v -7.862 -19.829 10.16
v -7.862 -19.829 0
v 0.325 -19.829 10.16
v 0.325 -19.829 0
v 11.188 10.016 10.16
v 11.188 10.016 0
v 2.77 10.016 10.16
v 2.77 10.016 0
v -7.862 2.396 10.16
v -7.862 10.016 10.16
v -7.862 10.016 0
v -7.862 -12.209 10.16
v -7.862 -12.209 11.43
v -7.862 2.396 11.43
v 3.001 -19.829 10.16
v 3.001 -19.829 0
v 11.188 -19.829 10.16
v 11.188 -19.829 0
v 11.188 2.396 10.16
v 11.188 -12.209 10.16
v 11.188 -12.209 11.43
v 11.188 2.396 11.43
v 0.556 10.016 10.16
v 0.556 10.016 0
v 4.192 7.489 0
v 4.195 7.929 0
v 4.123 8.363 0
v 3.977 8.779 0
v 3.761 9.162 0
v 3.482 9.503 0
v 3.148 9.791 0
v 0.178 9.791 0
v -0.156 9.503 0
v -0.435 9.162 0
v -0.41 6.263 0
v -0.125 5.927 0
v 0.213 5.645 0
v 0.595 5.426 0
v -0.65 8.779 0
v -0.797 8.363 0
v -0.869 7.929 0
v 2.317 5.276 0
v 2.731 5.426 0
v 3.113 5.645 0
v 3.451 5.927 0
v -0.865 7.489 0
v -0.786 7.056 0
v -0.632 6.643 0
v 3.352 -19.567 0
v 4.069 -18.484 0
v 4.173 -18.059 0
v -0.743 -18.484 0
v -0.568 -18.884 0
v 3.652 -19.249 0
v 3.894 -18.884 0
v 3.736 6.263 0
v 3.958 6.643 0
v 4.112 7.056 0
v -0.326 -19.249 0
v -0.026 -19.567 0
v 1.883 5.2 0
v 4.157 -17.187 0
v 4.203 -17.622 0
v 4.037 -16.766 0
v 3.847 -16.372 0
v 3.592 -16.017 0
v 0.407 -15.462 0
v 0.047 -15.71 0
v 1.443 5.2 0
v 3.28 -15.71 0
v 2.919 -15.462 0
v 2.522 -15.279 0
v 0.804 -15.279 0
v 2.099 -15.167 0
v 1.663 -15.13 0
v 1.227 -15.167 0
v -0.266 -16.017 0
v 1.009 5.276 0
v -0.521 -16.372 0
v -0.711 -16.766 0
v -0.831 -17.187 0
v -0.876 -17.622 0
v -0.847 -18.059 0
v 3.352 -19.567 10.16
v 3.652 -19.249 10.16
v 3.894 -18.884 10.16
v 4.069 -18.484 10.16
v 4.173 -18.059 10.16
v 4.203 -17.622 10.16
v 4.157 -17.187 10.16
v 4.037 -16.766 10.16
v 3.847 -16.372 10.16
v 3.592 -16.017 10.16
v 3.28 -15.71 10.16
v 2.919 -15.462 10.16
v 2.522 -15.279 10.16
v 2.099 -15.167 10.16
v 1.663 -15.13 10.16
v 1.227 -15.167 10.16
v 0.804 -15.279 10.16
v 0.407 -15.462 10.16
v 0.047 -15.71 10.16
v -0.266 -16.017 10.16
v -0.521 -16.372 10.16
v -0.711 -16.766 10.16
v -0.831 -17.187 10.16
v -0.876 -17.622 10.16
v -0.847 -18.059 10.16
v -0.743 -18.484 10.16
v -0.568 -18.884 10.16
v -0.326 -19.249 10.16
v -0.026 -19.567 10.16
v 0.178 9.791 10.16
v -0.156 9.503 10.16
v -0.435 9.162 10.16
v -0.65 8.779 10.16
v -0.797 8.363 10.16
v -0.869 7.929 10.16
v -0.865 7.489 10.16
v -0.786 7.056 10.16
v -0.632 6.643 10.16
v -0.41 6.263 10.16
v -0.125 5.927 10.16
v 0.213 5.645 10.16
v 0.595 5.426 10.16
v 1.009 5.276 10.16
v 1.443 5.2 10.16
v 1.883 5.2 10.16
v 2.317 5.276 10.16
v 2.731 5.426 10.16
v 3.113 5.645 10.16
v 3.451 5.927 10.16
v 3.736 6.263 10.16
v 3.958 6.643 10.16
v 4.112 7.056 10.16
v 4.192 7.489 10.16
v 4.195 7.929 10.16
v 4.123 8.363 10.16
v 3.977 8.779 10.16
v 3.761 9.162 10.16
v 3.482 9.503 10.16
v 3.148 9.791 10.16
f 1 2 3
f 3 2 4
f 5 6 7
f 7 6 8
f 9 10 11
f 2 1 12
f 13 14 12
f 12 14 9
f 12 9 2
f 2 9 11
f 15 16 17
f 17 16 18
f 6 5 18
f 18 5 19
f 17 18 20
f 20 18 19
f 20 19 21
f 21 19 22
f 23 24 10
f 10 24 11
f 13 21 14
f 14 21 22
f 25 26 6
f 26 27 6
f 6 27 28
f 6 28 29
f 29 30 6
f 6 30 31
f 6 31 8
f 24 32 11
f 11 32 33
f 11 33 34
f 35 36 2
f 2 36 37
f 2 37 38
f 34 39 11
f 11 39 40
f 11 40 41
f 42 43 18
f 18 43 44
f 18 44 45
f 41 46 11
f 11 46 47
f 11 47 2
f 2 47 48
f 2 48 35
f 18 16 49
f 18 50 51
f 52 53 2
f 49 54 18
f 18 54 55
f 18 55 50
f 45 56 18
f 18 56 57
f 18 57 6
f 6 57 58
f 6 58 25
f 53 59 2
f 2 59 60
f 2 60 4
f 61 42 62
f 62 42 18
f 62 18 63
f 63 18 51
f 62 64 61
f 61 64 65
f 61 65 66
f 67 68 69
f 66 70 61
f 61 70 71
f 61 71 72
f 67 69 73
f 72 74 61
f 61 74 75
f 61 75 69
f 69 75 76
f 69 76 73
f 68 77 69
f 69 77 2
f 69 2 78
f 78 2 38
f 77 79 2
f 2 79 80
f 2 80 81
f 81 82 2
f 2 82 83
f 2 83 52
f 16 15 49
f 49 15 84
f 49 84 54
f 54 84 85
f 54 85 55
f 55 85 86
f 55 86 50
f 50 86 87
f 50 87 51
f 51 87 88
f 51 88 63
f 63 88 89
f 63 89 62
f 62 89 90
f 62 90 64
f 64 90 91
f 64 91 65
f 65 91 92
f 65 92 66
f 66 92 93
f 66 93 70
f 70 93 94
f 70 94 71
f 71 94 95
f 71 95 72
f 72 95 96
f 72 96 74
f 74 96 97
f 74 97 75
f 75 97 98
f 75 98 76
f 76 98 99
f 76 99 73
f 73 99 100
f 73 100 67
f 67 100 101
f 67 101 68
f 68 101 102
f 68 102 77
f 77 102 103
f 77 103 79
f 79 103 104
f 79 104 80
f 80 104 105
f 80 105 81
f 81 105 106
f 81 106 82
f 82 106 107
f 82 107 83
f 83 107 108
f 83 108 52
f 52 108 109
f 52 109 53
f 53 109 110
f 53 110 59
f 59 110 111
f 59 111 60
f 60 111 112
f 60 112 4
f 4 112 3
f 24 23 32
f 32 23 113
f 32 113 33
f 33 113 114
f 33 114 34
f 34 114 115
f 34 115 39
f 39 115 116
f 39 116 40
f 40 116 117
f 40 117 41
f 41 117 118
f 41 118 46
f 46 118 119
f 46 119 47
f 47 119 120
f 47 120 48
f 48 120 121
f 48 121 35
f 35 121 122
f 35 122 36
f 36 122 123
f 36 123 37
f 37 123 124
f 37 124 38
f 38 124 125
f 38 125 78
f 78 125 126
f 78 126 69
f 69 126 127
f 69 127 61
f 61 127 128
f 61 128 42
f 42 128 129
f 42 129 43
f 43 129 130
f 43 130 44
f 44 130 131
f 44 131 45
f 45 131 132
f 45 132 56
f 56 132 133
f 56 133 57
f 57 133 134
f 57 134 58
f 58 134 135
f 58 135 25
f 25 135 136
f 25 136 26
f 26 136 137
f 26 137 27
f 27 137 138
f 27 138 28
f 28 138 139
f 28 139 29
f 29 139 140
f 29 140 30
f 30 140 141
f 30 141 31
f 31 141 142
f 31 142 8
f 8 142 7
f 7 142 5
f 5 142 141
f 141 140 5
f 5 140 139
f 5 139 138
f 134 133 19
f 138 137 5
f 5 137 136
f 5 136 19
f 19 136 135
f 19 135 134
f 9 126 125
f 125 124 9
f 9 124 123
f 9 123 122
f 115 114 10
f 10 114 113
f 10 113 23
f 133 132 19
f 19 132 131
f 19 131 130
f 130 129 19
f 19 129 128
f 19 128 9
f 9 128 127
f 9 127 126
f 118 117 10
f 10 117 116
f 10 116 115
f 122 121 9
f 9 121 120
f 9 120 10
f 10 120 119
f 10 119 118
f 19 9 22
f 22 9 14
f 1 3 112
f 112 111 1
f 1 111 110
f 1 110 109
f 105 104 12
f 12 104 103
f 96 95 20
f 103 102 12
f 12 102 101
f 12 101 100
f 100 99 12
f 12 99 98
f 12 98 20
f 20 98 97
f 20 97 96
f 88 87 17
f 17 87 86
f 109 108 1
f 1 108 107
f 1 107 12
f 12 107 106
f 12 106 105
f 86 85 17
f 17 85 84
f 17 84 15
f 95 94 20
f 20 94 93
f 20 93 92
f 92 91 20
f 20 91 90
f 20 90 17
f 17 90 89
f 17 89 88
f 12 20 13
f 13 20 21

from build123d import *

# Parameters (mm, degrees)
SKETCH1_W           = 19.05
SKETCH1_H           = 29.845
BOSS_EXTRUDE1_DEPTH = 11.43
SKETCH2_R           = 2.54
CUT_EXTRUDE1_DEPTH  = 11.43
SKETCH3_W           = 19.05
SKETCH3_H           = 7.62
CUT_EXTRUDE2_DEPTH  = 1.27


with BuildPart() as part:
    # Sketch1 → Boss-Extrude1 (new body)
    with BuildSketch(Plane.XY):
        with Locations((1.663095238, -4.906130952)):
            Rectangle(SKETCH1_W, SKETCH1_H)
    extrude(amount=BOSS_EXTRUDE1_DEPTH)

    # Sketch2 → Cut-Extrude1 (cut)
    with BuildSketch(Plane.XY.offset(11.43)):
        with Locations((1.663095238, 7.730369048)):
            Circle(SKETCH2_R)
        with Locations((1.663095238, -17.669630952)):
            Circle(SKETCH2_R)
    extrude(amount=-CUT_EXTRUDE1_DEPTH, mode=Mode.SUBTRACT)

    # Sketch3 → Cut-Extrude2 (cut)
    with BuildSketch(Plane.XY.offset(11.43)):
        with Locations((1.663095238, 6.206369048)):
            Rectangle(SKETCH3_W, SKETCH3_H)
        with Locations((1.663095238, -16.018630952)):
            Rectangle(SKETCH3_W, SKETCH3_H)
    extrude(amount=-CUT_EXTRUDE2_DEPTH, mode=Mode.SUBTRACT)


solid = part.part
